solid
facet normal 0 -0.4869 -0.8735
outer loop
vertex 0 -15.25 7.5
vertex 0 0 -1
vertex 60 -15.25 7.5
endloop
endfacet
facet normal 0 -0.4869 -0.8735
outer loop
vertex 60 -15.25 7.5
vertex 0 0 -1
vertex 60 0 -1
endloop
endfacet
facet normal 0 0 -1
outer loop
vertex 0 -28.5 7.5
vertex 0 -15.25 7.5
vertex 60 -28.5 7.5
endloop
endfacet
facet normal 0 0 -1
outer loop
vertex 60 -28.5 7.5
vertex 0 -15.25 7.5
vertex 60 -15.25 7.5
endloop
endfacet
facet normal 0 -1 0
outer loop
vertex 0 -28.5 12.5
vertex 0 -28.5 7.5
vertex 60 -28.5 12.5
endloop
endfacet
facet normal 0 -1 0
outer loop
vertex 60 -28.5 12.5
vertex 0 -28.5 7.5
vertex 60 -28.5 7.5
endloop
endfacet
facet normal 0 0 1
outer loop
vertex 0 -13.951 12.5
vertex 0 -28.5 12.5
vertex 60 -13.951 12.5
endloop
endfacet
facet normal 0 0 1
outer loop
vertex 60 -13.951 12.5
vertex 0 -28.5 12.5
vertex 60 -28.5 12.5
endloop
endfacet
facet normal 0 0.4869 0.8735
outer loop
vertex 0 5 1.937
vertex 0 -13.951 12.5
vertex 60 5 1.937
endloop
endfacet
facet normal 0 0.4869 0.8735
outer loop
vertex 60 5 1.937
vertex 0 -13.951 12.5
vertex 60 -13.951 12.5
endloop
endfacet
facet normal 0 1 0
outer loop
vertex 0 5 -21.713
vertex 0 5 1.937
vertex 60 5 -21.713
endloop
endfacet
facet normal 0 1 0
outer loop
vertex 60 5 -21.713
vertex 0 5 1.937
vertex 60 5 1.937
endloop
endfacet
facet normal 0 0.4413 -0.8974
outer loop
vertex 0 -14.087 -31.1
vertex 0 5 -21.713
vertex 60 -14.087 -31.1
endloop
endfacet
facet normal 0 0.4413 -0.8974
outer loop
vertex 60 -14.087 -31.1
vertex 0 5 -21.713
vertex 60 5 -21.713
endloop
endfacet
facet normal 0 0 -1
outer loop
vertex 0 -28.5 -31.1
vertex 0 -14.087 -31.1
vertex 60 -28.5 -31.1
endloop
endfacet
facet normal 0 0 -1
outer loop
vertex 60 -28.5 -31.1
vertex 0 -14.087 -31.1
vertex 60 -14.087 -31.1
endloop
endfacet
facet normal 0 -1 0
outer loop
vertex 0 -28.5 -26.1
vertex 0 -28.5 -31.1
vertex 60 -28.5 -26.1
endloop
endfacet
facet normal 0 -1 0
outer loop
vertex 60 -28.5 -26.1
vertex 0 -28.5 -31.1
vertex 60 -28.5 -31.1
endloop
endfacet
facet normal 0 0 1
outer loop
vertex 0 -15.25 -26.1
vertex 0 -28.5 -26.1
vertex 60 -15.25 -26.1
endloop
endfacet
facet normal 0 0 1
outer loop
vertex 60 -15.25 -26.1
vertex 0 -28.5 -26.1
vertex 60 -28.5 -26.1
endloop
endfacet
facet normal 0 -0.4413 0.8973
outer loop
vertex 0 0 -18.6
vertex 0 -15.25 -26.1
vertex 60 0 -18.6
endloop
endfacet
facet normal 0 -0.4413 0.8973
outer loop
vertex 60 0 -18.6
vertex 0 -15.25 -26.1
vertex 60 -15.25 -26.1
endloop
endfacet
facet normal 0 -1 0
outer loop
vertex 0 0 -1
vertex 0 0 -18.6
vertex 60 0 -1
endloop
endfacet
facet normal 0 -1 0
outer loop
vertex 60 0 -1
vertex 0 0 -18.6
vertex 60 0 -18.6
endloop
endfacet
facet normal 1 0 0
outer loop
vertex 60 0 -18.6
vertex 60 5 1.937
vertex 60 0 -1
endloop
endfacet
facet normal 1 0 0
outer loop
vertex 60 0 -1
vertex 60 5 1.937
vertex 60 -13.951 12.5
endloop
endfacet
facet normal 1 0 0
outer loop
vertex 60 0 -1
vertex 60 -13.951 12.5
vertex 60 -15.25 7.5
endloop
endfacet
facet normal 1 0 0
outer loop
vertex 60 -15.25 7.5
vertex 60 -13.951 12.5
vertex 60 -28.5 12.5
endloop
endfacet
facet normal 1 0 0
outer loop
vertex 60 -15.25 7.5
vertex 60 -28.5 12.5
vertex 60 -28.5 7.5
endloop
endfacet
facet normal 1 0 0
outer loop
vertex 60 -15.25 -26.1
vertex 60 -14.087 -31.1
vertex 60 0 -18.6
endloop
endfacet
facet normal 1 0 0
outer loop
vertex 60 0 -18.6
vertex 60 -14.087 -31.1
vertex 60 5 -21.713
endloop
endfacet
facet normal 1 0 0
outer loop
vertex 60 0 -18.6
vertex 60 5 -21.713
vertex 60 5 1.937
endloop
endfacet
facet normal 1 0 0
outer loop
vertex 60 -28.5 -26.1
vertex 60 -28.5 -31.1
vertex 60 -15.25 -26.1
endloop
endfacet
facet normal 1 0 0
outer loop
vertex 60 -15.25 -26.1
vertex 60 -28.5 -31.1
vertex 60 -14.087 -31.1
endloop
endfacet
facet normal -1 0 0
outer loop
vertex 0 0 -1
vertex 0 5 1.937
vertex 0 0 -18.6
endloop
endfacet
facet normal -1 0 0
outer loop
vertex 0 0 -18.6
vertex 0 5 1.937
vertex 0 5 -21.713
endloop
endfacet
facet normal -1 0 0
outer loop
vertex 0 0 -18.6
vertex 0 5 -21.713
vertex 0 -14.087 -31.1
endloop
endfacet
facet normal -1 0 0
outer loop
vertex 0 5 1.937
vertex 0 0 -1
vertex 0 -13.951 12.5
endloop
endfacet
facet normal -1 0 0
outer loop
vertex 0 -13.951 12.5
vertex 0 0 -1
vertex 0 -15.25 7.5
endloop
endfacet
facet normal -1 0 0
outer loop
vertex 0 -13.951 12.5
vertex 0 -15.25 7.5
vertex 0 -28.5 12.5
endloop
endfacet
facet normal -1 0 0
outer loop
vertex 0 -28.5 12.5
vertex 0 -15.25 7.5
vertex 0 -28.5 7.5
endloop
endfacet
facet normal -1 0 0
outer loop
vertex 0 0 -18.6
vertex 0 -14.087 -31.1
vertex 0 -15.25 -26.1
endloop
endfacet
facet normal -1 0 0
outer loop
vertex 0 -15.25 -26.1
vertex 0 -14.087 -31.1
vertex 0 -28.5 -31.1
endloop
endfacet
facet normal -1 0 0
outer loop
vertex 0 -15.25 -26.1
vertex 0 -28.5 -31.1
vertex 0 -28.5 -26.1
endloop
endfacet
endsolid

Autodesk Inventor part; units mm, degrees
ref_plane "YZ Plane" through (0, 0, 0) normal (1, 0, 0) x (0, 1, 0)
ref_plane "XZ Plane" through (0, 0, 0) normal (0, 1, 0) x (-1, 0, 0)
ref_plane "XY Plane" through (0, 0, 0) normal (0, 0, 1) x (1, 0, 0)
sketch "Sketch1" plane through (0, 0, 0) normal (1, 0, 0) x (0, 1, 0)
  line L0 (25346.4946, 38060.2067) -> (25328.8946, 38060.2067)
  line L1 (0, -1) -> (0, -18.6)
  line L2 (-15.25, -26.1) -> (-28.5, -26.1)
  line L3 (-15.25, 7.5) -> (-28.5, 7.5)
  line L4 (-15.25, 7.5) -> (0, -1)
  line L5 (0, -18.6) -> (-15.25, -26.1)
  line L6 (-28.5, 12.5) -> (-13.9507, 12.5)
  line L7 (-13.9507, 12.5) -> (5, 1.9373)
  line L8 (5, 1.9373) -> (5, -21.7129)
  line L9 (5, -21.7129) -> (-14.087, -31.1)
  line L10 (-14.087, -31.1) -> (-28.5, -31.1)
  line L11 (-28.5, 12.5) -> (-28.5, 7.5)
  line L12 (-28.5, -26.1) -> (-28.5, -31.1)
  dimension "d2" = 17.6
  dimension "d8" = 5
  dimension "d12" = 38.6
extrude "Extrusion1" add sketch "Sketch1" along normal blind 60
properties part number "BatteryHolder"
